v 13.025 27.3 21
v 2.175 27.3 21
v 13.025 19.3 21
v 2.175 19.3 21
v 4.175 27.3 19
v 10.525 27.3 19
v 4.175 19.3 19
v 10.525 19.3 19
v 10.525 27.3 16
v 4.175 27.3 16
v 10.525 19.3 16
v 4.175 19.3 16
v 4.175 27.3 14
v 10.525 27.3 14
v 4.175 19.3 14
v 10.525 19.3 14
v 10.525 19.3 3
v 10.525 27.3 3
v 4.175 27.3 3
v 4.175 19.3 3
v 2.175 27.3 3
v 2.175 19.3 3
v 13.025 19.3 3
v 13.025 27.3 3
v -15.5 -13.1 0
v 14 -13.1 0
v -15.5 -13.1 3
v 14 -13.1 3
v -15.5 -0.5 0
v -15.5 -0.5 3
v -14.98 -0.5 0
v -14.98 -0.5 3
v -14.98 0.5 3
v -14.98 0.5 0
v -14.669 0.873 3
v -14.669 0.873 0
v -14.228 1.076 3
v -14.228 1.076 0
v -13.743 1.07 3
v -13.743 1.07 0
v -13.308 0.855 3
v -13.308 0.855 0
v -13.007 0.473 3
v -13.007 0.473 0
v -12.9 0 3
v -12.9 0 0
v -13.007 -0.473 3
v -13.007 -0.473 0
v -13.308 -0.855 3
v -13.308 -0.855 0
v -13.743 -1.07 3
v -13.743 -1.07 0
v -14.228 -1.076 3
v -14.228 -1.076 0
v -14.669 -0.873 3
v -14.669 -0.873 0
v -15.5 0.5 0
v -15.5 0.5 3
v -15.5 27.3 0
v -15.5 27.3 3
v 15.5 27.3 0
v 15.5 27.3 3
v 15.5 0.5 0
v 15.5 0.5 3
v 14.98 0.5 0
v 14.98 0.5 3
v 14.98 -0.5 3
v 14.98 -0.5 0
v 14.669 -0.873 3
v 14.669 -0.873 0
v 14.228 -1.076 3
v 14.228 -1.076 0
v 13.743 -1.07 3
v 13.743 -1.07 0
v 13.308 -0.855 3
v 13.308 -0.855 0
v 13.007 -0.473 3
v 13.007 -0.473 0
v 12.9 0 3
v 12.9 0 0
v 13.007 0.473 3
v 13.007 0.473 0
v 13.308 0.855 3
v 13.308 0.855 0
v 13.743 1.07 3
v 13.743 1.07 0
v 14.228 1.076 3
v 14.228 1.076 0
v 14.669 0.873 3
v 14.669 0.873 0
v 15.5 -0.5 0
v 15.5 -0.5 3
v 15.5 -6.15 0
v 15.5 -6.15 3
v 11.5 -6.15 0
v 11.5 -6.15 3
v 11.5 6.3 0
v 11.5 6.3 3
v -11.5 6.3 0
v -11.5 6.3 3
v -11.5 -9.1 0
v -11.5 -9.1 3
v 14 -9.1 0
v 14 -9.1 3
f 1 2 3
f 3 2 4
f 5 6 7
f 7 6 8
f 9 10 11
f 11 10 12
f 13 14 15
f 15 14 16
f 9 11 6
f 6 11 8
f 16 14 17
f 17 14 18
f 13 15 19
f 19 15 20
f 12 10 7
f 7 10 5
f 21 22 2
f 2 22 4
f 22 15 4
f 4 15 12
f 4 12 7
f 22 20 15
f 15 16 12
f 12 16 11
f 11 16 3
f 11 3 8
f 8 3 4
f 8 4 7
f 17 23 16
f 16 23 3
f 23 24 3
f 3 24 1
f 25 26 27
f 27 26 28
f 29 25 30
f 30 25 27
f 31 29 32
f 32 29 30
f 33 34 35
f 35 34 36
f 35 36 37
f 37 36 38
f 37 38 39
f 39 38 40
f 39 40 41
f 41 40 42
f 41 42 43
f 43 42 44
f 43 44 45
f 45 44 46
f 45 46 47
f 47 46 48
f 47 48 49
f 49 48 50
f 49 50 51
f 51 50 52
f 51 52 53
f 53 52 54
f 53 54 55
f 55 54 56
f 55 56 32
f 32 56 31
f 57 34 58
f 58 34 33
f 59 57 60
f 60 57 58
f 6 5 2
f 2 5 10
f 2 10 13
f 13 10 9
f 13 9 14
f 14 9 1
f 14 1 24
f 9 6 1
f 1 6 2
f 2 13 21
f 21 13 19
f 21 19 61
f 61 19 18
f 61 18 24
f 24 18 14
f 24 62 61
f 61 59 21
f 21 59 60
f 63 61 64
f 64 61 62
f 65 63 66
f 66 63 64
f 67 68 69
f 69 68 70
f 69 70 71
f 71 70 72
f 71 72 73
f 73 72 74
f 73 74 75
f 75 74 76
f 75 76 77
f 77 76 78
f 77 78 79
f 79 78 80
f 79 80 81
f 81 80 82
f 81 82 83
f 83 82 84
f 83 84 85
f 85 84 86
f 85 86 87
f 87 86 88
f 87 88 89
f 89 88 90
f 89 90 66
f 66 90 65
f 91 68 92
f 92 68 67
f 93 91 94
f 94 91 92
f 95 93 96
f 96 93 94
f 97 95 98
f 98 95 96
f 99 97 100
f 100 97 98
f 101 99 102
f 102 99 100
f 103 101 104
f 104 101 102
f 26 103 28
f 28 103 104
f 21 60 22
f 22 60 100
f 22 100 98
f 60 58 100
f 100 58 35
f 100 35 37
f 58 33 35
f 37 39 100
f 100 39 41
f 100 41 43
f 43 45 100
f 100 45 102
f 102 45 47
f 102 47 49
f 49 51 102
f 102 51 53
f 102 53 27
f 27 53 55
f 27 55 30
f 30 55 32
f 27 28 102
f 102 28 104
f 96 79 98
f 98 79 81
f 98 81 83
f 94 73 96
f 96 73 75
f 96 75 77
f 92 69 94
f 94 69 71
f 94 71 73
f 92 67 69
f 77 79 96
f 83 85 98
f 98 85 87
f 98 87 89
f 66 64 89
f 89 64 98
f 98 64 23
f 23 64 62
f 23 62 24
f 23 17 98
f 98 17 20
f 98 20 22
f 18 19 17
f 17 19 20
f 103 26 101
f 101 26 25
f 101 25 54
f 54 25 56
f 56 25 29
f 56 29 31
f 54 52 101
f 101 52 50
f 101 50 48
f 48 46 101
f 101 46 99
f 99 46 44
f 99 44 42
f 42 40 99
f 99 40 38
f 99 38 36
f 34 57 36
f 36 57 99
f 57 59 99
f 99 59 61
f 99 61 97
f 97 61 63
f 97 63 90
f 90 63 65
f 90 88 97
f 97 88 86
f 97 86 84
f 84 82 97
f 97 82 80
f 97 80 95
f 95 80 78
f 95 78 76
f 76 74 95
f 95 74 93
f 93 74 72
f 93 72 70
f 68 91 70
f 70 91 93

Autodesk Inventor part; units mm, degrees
ref_plane "YZ Plane" through (0, 0, 0) normal (1, 0, 0) x (0, 1, 0)
ref_plane "XZ Plane" through (0, 0, 0) normal (0, 1, 0) x (-1, 0, 0)
ref_plane "XY Plane" through (0, 0, 0) normal (0, 0, 1) x (1, 0, 0)
sketch "Sketch1" plane through (0, 0, 0) normal (0, 0, 1) x (1, 0, 0)
  line L0 (-11.35, -6.15) -> (11.35, -6.15) construction
  line L1 (11.35, -6.15) -> (11.35, 6.15) construction
  line L2 (11.35, 6.15) -> (-11.35, 6.15) construction
  line L3 (-11.35, 6.15) -> (-11.35, -6.15) construction
  line L4 (-11.35, -6.15) -> (11.35, 6.15) construction
  line L5 (11.35, -6.15) -> (-11.35, 6.15) construction
  line L6 (-11.5, -6.3) -> (11.5, -6.3)
  line L7 (11.5, -6.3) -> (11.5, 6.3)
  line L8 (11.5, 6.3) -> (-11.5, 6.3)
  line L9 (-11.5, 6.3) -> (-11.5, -6.3)
  line L10 (-11.5, -6.3) -> (11.5, 6.3) construction
  line L11 (11.5, -6.3) -> (-11.5, 6.3) construction
  line L12 (-15.5, -13.1) -> (-15.5, 27.3)
  line L13 (-15.5, 27.3) -> (15.5, 27.3)
  line L14 (15.5, 27.3) -> (15.5, -6.15)
  line L15 (11.5, -6.15) -> (15.5, -6.15)
  line L16 (-11.5, -6.3) -> (-11.5, -9.1)
  line L17 (-11.5, -9.1) -> (14, -9.1)
  line L18 (14, -9.1) -> (14, -13.1)
  line L19 (14, -13.1) -> (-15.5, -13.1)
  circle A0 centre (-14, 0) radius 1.1
  line L20 (-14.9798, 0.5) -> (-15.5, 0.5)
  line L21 (-14.9798, -0.5) -> (-15.5, -0.5)
  line L22 (0, 0) -> (0, 6.3) construction
  circle A1 centre (14, 0) radius 1.1
  line L23 (14.9798, 0.5) -> (15.5, 0.5)
  line L24 (14.9798, -0.5) -> (15.5, -0.5)
  point P0 (15.5, -0.5)
  point P1 (15.5, 0.5)
  point P2 (14, -11.1)
  dimension "d0" = 22.7
  dimension "d1" = 12.3
  dimension "d2" = 0.15
  dimension "d3" = 0.15
  dimension "d5" = 2.95
  dimension "d6" = 4
  dimension "d7" = 21
  dimension "d8" = 4
  dimension "d9" = 4
  dimension "d13" = 2.2
  dimension "d14" = 14
  dimension "d15" = 1
extrude "Extrusion2" add sketch "Sketch1" along normal blind 3 contours L16 L17 L18 L19 L12 L21 A0 L20 L13 L14 L23 A1 L24 L15 L7 L8 L9
sketch "Sketch2" plane through (0, 0, 3) normal (0, 0, 1) x (1, 0, 0)
  line L0 (15.5, 27.3) -> (-15.5, 27.3) projected
  line L1 (-11.5, 6.3) -> (11.5, 6.3) projected
  line L2 (10.525, 27.3) -> (13.025, 27.3)
  line L3 (13.025, 27.3) -> (13.025, 19.3)
  line L4 (13.025, 19.3) -> (10.525, 19.3)
  line L5 (10.525, 19.3) -> (10.525, 27.3)
  line L6 (11.5, 6.3) -> (11.5, -6.15) projected
  line L7 (2.175, 27.3) -> (4.175, 27.3)
  line L8 (4.175, 27.3) -> (4.175, 19.3)
  line L9 (4.175, 19.3) -> (2.175, 19.3)
  line L10 (2.175, 19.3) -> (2.175, 27.3)
  line L11 (14, -9.1) -> (-11.5, -9.1) projected
  line L12 (-15.5, -13.1) -> (14, -13.1) projected
  line L13 (10.525, -9.1) -> (13.025, -9.1)
  line L14 (13.025, -9.1) -> (13.025, -13.1)
  line L15 (13.025, -13.1) -> (10.525, -13.1)
  line L16 (10.525, -13.1) -> (10.525, -9.1)
  line L17 (4.175, -9.1) -> (2.175, -9.1)
  line L18 (2.175, -9.1) -> (2.175, -13.1)
  line L19 (2.175, -13.1) -> (4.175, -13.1)
  line L20 (4.175, -13.1) -> (4.175, -9.1)
  point P0 (0, 0)
  point P1 (7.65, 6.55)
  point P2 (7.65, 6.55)
  point P3 (-1.7, 6.55)
  point P4 (10.525, -13.1)
  point P5 (4.175, -13.1)
  point P6 (2.175, -9.1)
  point P7 (10.525, -13.1)
  dimension "d19" = 2.5
  dimension "d22" = 0.975
  dimension "d23" = 2
  dimension "d24" = 6.35
  dimension "d25" = 13
extrude "Extrusion3" add sketch "Sketch2" along normal blind 13.4 contours L3 L4 L5 L0 | L8 L9 L10 L0
sketch "Sketch3" plane through (-15.5, 27.3, 0) normal (0, 1, 0) x (1, 0, 0)
  line L0 (19.675, -3) -> (19.675, -16.4) projected
  line L1 (26.025, -3) -> (26.025, -16.4) projected
  line L2 (28.525, -16.4) -> (26.025, -16.4) projected
  line L3 (17.675, -16.4) -> (19.675, -16.4) projected
  line L4 (19.675, -16.4) -> (19.675, -19)
  line L5 (19.675, -19) -> (26.025, -19)
  line L6 (26.025, -19) -> (26.025, -16.4)
  line L7 (26.025, -3) -> (19.675, -3) projected
  line L8 (17.675, -16.4) -> (17.675, -21)
  line L9 (17.675, -21) -> (28.525, -21)
  line L10 (28.525, -21) -> (28.525, -16.4)
  line L11 (19.675, -16) -> (26.025, -16)
  line L12 (19.675, -14) -> (26.025, -14)
  point P0 (15.5, 0)
  dimension "d27" = 16
  dimension "d28" = 4.6
  dimension "d31" = 3
  dimension "d32" = 2
extrude "Extrusion4" add sketch "Sketch3" against normal blind 8 contours L12 L1 L11 L0 | L4 L5 L6 L2 L10 L9 L8 L3
equation "\"d2\" = toleranciaServo + margenServo"
equation "\"d3\" = toleranciaServo + margenServo"
equation "\"d5\" = espesorAcrilico + margenAcrilico"
equation "\"d16\" = espesorPieza"
equation "\"d24\" = juegoCremallera + anchoCremallera - toleranciaAcrilico"
equation "\"toleranciaServo\" = 0.1"
equation "\"espesorAcrilico\" = 2.55"
equation "\"margenAcrilico\" = 0.4"
equation "\"margenServo\" = 0.05"
equation "\"largoPatilla\" = 24"
equation "\"espesorPieza\" = 3"
equation "\"anchoCremallera\" = 6.25"
equation "\"toleranciaAcrilico\" = 0.2"
equation "\"juegoCremallera\" = 0.3"
equation "\"distCremallera\" = 1.075"
properties part number "SoporteServo v2"
